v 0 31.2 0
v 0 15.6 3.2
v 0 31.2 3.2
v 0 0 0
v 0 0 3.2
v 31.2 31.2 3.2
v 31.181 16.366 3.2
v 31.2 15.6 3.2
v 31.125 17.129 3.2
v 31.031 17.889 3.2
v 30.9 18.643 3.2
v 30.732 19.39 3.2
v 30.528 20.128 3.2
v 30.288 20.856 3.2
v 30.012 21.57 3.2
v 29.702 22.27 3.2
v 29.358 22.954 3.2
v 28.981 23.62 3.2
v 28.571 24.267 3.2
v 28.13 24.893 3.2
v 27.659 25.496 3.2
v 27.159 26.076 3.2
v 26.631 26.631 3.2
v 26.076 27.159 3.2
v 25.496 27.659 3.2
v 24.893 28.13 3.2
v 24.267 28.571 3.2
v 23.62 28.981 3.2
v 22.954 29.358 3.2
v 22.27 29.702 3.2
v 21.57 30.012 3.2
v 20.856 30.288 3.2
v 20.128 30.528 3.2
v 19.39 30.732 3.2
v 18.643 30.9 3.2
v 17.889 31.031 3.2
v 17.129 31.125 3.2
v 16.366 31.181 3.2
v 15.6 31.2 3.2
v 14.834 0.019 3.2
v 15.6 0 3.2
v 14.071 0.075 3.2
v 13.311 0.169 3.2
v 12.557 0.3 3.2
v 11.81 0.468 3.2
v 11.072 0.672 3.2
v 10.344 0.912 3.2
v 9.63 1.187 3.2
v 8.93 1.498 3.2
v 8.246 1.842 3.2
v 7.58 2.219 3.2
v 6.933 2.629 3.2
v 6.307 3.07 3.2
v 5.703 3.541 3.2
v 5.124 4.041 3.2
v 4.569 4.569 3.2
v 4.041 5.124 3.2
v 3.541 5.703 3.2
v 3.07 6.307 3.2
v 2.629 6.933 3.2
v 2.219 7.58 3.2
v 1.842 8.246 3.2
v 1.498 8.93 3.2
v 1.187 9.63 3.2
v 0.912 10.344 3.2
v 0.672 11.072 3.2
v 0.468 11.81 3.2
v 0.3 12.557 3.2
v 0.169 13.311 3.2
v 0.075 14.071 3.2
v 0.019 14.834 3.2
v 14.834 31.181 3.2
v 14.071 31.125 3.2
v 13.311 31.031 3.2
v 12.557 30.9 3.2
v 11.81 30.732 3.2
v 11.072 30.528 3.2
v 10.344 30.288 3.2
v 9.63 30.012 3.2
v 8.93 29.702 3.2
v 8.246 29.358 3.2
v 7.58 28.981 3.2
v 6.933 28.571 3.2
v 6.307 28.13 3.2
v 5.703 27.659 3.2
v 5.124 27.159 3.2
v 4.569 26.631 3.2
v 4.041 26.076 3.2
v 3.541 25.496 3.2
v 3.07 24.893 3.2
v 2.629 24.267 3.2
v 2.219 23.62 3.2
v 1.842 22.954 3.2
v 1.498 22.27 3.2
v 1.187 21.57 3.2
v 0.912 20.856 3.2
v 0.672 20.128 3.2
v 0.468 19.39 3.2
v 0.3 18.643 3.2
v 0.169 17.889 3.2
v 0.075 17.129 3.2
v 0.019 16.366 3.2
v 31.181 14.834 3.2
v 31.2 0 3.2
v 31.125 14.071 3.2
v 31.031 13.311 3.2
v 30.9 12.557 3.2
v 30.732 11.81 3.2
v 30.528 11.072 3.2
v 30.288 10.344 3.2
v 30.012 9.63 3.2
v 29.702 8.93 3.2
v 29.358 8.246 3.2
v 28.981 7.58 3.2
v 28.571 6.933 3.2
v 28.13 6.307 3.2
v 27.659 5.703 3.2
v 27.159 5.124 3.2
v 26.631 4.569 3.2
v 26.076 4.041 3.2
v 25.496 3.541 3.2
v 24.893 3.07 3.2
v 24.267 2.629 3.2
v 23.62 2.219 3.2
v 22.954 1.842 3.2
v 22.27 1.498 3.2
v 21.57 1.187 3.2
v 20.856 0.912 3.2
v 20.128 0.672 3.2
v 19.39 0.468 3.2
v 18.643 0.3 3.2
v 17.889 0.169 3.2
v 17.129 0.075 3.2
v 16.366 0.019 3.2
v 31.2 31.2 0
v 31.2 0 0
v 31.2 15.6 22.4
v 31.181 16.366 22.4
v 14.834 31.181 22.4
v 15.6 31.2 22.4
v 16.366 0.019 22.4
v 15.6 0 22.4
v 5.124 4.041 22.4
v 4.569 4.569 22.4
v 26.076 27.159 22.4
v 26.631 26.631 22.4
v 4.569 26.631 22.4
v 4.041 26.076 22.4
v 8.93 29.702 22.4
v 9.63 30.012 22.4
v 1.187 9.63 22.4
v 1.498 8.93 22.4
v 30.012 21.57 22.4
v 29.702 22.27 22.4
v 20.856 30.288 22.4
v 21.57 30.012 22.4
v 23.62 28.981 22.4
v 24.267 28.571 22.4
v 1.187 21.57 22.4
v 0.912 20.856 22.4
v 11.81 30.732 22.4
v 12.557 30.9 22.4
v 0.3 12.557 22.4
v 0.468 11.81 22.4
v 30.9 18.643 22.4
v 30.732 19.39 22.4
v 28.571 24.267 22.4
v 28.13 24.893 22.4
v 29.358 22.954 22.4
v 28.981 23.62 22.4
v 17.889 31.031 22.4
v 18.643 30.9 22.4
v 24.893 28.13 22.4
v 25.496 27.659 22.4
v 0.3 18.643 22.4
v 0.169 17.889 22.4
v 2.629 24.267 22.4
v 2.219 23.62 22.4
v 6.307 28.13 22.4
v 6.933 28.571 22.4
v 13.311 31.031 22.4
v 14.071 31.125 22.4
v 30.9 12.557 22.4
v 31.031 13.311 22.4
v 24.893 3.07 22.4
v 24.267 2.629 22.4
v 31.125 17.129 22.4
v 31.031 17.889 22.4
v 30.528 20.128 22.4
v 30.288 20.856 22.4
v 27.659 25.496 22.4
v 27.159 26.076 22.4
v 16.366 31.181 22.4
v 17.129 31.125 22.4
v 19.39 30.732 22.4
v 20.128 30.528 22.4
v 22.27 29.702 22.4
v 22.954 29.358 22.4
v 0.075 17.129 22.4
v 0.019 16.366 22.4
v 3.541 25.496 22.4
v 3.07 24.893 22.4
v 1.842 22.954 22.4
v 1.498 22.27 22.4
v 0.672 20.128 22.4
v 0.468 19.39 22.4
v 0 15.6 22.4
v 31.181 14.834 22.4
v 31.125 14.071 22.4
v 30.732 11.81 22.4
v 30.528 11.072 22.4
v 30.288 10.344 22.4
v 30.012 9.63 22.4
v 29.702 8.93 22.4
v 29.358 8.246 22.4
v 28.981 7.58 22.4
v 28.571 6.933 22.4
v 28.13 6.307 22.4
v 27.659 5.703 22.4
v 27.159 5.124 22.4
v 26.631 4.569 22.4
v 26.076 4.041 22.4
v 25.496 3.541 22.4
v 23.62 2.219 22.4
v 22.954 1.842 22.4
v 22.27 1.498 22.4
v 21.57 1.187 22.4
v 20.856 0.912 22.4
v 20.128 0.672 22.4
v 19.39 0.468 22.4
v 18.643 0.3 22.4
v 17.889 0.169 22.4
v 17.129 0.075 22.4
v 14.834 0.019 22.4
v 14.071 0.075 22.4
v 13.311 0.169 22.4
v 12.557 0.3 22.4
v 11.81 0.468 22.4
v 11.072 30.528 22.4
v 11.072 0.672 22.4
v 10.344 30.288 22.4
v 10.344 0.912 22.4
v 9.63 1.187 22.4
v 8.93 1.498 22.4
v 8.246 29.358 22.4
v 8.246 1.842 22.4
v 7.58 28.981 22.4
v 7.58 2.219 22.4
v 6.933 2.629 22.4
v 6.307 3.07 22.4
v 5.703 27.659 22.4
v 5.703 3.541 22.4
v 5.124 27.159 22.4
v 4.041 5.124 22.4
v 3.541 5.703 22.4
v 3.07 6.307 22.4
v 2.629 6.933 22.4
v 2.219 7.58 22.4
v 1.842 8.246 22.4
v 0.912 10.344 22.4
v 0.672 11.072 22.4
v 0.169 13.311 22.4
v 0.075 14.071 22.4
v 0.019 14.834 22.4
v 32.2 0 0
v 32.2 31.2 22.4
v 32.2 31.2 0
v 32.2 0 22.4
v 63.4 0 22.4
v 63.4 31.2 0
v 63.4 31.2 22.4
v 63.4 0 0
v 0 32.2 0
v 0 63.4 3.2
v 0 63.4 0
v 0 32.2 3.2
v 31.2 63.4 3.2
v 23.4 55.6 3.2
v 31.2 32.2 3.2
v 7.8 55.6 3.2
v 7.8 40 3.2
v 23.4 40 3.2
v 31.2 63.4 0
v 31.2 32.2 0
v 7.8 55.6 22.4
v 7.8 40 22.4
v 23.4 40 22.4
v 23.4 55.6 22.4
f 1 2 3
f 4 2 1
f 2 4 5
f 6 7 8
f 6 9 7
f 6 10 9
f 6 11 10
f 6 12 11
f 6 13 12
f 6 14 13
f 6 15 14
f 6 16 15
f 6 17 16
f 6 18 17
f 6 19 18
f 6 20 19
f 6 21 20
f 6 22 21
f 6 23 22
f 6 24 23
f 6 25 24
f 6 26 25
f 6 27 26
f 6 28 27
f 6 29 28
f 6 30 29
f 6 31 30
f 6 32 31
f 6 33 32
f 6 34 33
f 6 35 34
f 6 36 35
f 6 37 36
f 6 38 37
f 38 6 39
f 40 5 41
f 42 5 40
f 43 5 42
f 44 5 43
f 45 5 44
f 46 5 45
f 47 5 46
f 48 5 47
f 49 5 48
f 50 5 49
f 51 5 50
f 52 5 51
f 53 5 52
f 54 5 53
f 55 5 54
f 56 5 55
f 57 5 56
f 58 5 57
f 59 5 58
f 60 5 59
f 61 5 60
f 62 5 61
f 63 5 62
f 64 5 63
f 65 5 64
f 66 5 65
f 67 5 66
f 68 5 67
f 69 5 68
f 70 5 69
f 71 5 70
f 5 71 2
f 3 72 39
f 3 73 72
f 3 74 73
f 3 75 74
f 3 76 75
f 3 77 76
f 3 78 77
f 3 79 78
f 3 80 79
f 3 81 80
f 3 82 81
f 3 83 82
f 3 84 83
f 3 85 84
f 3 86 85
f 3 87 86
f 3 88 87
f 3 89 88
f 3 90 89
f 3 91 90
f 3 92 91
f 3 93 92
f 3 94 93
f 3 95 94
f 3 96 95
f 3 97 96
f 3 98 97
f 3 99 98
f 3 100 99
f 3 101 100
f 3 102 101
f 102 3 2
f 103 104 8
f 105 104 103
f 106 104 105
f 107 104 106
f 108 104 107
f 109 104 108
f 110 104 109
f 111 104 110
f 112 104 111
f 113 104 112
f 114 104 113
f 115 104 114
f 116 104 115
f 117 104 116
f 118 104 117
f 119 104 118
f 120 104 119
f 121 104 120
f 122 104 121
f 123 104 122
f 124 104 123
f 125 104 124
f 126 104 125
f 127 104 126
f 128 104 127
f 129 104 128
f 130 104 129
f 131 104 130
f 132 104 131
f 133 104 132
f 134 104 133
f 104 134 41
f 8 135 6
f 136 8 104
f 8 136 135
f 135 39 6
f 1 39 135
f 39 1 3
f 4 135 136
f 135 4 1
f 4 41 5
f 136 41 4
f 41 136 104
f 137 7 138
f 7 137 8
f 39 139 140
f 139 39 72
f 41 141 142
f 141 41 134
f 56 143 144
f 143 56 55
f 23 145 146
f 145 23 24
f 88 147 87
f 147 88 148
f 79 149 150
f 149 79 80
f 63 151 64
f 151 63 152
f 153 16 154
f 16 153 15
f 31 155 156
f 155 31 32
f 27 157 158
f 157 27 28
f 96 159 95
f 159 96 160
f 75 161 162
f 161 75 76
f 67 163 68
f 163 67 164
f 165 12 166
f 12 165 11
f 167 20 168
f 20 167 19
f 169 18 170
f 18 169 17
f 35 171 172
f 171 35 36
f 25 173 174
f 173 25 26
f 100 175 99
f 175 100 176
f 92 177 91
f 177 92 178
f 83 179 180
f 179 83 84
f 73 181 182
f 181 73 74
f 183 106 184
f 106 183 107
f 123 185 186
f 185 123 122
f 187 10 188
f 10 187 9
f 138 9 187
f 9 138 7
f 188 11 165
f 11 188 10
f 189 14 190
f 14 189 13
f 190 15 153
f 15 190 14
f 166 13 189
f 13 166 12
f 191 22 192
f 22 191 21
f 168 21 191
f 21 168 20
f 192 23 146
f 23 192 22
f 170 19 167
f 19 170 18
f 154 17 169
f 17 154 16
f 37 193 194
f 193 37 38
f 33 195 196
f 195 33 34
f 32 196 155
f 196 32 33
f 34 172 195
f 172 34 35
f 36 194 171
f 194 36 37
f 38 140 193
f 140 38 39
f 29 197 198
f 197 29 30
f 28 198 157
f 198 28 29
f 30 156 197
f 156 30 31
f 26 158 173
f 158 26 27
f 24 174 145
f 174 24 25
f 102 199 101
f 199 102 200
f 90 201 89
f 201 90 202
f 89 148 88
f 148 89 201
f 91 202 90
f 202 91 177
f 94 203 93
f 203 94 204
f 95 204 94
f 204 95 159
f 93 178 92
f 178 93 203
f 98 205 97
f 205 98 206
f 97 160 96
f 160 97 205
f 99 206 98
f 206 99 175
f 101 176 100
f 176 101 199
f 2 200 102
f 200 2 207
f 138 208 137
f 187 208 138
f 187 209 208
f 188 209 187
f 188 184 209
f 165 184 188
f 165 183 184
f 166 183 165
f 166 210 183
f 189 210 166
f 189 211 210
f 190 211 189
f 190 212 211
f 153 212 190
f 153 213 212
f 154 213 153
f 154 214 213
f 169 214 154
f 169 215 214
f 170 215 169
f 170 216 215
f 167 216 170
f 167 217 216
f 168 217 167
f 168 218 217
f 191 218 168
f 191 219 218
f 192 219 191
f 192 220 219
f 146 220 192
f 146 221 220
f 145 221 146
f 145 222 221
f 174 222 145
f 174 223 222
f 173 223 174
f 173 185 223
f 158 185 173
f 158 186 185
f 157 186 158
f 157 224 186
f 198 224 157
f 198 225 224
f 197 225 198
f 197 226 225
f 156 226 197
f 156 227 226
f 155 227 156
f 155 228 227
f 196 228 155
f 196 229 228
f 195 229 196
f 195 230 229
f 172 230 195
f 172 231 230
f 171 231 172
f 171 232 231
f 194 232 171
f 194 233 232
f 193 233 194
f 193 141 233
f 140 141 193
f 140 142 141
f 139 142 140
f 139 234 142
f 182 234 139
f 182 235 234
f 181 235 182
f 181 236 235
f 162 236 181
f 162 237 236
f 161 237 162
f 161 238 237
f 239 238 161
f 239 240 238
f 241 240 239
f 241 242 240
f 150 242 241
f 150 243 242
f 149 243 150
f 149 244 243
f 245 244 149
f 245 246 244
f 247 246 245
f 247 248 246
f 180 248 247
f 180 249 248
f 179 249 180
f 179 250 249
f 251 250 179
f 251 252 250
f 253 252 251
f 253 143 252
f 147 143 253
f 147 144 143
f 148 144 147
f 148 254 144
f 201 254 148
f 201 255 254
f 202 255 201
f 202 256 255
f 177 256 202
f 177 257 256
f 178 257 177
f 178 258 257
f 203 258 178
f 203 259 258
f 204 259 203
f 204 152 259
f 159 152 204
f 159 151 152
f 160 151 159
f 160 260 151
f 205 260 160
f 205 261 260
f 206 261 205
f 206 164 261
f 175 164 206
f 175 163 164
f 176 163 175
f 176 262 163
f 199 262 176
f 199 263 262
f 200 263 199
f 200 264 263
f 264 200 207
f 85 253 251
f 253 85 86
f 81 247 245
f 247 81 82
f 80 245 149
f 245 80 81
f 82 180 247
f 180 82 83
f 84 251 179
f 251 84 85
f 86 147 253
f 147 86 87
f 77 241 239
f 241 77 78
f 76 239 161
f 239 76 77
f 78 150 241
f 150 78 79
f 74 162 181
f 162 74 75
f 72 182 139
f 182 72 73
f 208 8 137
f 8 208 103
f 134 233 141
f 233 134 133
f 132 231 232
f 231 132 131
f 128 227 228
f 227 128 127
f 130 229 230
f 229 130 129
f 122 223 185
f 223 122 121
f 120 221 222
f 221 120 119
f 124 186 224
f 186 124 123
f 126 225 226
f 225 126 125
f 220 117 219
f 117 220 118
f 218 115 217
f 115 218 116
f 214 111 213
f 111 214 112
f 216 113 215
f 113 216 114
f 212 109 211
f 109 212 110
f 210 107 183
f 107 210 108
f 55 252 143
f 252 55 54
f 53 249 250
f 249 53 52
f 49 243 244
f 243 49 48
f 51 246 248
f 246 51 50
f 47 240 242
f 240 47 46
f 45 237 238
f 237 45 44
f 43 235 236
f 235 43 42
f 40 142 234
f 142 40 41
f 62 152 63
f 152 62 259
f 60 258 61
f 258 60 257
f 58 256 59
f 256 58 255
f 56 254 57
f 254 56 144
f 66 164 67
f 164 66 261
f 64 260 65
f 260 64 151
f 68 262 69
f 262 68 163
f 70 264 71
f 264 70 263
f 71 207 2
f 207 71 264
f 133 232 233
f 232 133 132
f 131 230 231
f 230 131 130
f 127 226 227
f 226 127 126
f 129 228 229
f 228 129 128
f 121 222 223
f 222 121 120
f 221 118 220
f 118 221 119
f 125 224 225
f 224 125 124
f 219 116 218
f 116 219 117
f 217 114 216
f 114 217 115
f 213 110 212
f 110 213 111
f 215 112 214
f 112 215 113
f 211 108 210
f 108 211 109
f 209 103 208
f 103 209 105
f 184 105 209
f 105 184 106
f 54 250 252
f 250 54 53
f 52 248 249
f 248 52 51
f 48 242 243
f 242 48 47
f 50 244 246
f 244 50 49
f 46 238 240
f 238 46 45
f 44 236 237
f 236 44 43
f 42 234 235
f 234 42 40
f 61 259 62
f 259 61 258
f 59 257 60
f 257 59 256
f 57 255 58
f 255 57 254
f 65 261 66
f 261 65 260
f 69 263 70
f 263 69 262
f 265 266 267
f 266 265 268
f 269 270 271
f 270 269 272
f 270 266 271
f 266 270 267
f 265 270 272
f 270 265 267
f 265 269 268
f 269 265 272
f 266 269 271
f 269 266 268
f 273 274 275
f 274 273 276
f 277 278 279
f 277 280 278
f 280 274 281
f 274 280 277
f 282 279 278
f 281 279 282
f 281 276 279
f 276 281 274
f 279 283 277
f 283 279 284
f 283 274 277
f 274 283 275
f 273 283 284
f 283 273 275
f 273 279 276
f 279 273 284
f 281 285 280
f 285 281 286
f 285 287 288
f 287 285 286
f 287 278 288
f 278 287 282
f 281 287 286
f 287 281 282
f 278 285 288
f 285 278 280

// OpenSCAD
module big_round() {
    cube([4*7.8, 4*7.8, 9.6/3]);
    translate([2*7.8, 2*7.8, 9.6/3]) cylinder(d=4*7.8, h=9.6*2, $fn=128);
}

module big_square() {
    cube([4*7.8, 4*7.8, 9.6/3]);
    translate([0, 0, 9.6/3]) cube([4*7.8, 4*7.8, 2*9.6]);
}

module small_square() {
    cube([4*7.8, 4*7.8, 9.6/3]);
    translate([7.8, 7.8, 9.6/3]) cube([2*7.8, 2*7.8, 2*9.6]);
}

big_round();
translate([4*7.8+1, 0, 0]) big_square();
translate([0, 4*7.8+1, 0]) small_square();
